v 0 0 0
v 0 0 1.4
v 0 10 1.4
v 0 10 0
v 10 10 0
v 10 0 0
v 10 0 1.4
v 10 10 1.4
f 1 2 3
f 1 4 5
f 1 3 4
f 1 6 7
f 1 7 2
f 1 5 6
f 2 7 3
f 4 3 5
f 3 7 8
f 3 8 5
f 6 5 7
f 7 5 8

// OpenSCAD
/* Warning, this is a very basic generator with a lot of approximation 
input data : [LQFP, CEA, 10x10x1.4mm, 64, , A, C04-01074A]
generated by com.zoubworld.electronics.cad.model3d.Basic
Date : Sun Feb 15 10:50:49 CET 2026
*/

//body
color("black")
translate([0,0,0])
cube([10.0,10.0,1.4], center=false);
